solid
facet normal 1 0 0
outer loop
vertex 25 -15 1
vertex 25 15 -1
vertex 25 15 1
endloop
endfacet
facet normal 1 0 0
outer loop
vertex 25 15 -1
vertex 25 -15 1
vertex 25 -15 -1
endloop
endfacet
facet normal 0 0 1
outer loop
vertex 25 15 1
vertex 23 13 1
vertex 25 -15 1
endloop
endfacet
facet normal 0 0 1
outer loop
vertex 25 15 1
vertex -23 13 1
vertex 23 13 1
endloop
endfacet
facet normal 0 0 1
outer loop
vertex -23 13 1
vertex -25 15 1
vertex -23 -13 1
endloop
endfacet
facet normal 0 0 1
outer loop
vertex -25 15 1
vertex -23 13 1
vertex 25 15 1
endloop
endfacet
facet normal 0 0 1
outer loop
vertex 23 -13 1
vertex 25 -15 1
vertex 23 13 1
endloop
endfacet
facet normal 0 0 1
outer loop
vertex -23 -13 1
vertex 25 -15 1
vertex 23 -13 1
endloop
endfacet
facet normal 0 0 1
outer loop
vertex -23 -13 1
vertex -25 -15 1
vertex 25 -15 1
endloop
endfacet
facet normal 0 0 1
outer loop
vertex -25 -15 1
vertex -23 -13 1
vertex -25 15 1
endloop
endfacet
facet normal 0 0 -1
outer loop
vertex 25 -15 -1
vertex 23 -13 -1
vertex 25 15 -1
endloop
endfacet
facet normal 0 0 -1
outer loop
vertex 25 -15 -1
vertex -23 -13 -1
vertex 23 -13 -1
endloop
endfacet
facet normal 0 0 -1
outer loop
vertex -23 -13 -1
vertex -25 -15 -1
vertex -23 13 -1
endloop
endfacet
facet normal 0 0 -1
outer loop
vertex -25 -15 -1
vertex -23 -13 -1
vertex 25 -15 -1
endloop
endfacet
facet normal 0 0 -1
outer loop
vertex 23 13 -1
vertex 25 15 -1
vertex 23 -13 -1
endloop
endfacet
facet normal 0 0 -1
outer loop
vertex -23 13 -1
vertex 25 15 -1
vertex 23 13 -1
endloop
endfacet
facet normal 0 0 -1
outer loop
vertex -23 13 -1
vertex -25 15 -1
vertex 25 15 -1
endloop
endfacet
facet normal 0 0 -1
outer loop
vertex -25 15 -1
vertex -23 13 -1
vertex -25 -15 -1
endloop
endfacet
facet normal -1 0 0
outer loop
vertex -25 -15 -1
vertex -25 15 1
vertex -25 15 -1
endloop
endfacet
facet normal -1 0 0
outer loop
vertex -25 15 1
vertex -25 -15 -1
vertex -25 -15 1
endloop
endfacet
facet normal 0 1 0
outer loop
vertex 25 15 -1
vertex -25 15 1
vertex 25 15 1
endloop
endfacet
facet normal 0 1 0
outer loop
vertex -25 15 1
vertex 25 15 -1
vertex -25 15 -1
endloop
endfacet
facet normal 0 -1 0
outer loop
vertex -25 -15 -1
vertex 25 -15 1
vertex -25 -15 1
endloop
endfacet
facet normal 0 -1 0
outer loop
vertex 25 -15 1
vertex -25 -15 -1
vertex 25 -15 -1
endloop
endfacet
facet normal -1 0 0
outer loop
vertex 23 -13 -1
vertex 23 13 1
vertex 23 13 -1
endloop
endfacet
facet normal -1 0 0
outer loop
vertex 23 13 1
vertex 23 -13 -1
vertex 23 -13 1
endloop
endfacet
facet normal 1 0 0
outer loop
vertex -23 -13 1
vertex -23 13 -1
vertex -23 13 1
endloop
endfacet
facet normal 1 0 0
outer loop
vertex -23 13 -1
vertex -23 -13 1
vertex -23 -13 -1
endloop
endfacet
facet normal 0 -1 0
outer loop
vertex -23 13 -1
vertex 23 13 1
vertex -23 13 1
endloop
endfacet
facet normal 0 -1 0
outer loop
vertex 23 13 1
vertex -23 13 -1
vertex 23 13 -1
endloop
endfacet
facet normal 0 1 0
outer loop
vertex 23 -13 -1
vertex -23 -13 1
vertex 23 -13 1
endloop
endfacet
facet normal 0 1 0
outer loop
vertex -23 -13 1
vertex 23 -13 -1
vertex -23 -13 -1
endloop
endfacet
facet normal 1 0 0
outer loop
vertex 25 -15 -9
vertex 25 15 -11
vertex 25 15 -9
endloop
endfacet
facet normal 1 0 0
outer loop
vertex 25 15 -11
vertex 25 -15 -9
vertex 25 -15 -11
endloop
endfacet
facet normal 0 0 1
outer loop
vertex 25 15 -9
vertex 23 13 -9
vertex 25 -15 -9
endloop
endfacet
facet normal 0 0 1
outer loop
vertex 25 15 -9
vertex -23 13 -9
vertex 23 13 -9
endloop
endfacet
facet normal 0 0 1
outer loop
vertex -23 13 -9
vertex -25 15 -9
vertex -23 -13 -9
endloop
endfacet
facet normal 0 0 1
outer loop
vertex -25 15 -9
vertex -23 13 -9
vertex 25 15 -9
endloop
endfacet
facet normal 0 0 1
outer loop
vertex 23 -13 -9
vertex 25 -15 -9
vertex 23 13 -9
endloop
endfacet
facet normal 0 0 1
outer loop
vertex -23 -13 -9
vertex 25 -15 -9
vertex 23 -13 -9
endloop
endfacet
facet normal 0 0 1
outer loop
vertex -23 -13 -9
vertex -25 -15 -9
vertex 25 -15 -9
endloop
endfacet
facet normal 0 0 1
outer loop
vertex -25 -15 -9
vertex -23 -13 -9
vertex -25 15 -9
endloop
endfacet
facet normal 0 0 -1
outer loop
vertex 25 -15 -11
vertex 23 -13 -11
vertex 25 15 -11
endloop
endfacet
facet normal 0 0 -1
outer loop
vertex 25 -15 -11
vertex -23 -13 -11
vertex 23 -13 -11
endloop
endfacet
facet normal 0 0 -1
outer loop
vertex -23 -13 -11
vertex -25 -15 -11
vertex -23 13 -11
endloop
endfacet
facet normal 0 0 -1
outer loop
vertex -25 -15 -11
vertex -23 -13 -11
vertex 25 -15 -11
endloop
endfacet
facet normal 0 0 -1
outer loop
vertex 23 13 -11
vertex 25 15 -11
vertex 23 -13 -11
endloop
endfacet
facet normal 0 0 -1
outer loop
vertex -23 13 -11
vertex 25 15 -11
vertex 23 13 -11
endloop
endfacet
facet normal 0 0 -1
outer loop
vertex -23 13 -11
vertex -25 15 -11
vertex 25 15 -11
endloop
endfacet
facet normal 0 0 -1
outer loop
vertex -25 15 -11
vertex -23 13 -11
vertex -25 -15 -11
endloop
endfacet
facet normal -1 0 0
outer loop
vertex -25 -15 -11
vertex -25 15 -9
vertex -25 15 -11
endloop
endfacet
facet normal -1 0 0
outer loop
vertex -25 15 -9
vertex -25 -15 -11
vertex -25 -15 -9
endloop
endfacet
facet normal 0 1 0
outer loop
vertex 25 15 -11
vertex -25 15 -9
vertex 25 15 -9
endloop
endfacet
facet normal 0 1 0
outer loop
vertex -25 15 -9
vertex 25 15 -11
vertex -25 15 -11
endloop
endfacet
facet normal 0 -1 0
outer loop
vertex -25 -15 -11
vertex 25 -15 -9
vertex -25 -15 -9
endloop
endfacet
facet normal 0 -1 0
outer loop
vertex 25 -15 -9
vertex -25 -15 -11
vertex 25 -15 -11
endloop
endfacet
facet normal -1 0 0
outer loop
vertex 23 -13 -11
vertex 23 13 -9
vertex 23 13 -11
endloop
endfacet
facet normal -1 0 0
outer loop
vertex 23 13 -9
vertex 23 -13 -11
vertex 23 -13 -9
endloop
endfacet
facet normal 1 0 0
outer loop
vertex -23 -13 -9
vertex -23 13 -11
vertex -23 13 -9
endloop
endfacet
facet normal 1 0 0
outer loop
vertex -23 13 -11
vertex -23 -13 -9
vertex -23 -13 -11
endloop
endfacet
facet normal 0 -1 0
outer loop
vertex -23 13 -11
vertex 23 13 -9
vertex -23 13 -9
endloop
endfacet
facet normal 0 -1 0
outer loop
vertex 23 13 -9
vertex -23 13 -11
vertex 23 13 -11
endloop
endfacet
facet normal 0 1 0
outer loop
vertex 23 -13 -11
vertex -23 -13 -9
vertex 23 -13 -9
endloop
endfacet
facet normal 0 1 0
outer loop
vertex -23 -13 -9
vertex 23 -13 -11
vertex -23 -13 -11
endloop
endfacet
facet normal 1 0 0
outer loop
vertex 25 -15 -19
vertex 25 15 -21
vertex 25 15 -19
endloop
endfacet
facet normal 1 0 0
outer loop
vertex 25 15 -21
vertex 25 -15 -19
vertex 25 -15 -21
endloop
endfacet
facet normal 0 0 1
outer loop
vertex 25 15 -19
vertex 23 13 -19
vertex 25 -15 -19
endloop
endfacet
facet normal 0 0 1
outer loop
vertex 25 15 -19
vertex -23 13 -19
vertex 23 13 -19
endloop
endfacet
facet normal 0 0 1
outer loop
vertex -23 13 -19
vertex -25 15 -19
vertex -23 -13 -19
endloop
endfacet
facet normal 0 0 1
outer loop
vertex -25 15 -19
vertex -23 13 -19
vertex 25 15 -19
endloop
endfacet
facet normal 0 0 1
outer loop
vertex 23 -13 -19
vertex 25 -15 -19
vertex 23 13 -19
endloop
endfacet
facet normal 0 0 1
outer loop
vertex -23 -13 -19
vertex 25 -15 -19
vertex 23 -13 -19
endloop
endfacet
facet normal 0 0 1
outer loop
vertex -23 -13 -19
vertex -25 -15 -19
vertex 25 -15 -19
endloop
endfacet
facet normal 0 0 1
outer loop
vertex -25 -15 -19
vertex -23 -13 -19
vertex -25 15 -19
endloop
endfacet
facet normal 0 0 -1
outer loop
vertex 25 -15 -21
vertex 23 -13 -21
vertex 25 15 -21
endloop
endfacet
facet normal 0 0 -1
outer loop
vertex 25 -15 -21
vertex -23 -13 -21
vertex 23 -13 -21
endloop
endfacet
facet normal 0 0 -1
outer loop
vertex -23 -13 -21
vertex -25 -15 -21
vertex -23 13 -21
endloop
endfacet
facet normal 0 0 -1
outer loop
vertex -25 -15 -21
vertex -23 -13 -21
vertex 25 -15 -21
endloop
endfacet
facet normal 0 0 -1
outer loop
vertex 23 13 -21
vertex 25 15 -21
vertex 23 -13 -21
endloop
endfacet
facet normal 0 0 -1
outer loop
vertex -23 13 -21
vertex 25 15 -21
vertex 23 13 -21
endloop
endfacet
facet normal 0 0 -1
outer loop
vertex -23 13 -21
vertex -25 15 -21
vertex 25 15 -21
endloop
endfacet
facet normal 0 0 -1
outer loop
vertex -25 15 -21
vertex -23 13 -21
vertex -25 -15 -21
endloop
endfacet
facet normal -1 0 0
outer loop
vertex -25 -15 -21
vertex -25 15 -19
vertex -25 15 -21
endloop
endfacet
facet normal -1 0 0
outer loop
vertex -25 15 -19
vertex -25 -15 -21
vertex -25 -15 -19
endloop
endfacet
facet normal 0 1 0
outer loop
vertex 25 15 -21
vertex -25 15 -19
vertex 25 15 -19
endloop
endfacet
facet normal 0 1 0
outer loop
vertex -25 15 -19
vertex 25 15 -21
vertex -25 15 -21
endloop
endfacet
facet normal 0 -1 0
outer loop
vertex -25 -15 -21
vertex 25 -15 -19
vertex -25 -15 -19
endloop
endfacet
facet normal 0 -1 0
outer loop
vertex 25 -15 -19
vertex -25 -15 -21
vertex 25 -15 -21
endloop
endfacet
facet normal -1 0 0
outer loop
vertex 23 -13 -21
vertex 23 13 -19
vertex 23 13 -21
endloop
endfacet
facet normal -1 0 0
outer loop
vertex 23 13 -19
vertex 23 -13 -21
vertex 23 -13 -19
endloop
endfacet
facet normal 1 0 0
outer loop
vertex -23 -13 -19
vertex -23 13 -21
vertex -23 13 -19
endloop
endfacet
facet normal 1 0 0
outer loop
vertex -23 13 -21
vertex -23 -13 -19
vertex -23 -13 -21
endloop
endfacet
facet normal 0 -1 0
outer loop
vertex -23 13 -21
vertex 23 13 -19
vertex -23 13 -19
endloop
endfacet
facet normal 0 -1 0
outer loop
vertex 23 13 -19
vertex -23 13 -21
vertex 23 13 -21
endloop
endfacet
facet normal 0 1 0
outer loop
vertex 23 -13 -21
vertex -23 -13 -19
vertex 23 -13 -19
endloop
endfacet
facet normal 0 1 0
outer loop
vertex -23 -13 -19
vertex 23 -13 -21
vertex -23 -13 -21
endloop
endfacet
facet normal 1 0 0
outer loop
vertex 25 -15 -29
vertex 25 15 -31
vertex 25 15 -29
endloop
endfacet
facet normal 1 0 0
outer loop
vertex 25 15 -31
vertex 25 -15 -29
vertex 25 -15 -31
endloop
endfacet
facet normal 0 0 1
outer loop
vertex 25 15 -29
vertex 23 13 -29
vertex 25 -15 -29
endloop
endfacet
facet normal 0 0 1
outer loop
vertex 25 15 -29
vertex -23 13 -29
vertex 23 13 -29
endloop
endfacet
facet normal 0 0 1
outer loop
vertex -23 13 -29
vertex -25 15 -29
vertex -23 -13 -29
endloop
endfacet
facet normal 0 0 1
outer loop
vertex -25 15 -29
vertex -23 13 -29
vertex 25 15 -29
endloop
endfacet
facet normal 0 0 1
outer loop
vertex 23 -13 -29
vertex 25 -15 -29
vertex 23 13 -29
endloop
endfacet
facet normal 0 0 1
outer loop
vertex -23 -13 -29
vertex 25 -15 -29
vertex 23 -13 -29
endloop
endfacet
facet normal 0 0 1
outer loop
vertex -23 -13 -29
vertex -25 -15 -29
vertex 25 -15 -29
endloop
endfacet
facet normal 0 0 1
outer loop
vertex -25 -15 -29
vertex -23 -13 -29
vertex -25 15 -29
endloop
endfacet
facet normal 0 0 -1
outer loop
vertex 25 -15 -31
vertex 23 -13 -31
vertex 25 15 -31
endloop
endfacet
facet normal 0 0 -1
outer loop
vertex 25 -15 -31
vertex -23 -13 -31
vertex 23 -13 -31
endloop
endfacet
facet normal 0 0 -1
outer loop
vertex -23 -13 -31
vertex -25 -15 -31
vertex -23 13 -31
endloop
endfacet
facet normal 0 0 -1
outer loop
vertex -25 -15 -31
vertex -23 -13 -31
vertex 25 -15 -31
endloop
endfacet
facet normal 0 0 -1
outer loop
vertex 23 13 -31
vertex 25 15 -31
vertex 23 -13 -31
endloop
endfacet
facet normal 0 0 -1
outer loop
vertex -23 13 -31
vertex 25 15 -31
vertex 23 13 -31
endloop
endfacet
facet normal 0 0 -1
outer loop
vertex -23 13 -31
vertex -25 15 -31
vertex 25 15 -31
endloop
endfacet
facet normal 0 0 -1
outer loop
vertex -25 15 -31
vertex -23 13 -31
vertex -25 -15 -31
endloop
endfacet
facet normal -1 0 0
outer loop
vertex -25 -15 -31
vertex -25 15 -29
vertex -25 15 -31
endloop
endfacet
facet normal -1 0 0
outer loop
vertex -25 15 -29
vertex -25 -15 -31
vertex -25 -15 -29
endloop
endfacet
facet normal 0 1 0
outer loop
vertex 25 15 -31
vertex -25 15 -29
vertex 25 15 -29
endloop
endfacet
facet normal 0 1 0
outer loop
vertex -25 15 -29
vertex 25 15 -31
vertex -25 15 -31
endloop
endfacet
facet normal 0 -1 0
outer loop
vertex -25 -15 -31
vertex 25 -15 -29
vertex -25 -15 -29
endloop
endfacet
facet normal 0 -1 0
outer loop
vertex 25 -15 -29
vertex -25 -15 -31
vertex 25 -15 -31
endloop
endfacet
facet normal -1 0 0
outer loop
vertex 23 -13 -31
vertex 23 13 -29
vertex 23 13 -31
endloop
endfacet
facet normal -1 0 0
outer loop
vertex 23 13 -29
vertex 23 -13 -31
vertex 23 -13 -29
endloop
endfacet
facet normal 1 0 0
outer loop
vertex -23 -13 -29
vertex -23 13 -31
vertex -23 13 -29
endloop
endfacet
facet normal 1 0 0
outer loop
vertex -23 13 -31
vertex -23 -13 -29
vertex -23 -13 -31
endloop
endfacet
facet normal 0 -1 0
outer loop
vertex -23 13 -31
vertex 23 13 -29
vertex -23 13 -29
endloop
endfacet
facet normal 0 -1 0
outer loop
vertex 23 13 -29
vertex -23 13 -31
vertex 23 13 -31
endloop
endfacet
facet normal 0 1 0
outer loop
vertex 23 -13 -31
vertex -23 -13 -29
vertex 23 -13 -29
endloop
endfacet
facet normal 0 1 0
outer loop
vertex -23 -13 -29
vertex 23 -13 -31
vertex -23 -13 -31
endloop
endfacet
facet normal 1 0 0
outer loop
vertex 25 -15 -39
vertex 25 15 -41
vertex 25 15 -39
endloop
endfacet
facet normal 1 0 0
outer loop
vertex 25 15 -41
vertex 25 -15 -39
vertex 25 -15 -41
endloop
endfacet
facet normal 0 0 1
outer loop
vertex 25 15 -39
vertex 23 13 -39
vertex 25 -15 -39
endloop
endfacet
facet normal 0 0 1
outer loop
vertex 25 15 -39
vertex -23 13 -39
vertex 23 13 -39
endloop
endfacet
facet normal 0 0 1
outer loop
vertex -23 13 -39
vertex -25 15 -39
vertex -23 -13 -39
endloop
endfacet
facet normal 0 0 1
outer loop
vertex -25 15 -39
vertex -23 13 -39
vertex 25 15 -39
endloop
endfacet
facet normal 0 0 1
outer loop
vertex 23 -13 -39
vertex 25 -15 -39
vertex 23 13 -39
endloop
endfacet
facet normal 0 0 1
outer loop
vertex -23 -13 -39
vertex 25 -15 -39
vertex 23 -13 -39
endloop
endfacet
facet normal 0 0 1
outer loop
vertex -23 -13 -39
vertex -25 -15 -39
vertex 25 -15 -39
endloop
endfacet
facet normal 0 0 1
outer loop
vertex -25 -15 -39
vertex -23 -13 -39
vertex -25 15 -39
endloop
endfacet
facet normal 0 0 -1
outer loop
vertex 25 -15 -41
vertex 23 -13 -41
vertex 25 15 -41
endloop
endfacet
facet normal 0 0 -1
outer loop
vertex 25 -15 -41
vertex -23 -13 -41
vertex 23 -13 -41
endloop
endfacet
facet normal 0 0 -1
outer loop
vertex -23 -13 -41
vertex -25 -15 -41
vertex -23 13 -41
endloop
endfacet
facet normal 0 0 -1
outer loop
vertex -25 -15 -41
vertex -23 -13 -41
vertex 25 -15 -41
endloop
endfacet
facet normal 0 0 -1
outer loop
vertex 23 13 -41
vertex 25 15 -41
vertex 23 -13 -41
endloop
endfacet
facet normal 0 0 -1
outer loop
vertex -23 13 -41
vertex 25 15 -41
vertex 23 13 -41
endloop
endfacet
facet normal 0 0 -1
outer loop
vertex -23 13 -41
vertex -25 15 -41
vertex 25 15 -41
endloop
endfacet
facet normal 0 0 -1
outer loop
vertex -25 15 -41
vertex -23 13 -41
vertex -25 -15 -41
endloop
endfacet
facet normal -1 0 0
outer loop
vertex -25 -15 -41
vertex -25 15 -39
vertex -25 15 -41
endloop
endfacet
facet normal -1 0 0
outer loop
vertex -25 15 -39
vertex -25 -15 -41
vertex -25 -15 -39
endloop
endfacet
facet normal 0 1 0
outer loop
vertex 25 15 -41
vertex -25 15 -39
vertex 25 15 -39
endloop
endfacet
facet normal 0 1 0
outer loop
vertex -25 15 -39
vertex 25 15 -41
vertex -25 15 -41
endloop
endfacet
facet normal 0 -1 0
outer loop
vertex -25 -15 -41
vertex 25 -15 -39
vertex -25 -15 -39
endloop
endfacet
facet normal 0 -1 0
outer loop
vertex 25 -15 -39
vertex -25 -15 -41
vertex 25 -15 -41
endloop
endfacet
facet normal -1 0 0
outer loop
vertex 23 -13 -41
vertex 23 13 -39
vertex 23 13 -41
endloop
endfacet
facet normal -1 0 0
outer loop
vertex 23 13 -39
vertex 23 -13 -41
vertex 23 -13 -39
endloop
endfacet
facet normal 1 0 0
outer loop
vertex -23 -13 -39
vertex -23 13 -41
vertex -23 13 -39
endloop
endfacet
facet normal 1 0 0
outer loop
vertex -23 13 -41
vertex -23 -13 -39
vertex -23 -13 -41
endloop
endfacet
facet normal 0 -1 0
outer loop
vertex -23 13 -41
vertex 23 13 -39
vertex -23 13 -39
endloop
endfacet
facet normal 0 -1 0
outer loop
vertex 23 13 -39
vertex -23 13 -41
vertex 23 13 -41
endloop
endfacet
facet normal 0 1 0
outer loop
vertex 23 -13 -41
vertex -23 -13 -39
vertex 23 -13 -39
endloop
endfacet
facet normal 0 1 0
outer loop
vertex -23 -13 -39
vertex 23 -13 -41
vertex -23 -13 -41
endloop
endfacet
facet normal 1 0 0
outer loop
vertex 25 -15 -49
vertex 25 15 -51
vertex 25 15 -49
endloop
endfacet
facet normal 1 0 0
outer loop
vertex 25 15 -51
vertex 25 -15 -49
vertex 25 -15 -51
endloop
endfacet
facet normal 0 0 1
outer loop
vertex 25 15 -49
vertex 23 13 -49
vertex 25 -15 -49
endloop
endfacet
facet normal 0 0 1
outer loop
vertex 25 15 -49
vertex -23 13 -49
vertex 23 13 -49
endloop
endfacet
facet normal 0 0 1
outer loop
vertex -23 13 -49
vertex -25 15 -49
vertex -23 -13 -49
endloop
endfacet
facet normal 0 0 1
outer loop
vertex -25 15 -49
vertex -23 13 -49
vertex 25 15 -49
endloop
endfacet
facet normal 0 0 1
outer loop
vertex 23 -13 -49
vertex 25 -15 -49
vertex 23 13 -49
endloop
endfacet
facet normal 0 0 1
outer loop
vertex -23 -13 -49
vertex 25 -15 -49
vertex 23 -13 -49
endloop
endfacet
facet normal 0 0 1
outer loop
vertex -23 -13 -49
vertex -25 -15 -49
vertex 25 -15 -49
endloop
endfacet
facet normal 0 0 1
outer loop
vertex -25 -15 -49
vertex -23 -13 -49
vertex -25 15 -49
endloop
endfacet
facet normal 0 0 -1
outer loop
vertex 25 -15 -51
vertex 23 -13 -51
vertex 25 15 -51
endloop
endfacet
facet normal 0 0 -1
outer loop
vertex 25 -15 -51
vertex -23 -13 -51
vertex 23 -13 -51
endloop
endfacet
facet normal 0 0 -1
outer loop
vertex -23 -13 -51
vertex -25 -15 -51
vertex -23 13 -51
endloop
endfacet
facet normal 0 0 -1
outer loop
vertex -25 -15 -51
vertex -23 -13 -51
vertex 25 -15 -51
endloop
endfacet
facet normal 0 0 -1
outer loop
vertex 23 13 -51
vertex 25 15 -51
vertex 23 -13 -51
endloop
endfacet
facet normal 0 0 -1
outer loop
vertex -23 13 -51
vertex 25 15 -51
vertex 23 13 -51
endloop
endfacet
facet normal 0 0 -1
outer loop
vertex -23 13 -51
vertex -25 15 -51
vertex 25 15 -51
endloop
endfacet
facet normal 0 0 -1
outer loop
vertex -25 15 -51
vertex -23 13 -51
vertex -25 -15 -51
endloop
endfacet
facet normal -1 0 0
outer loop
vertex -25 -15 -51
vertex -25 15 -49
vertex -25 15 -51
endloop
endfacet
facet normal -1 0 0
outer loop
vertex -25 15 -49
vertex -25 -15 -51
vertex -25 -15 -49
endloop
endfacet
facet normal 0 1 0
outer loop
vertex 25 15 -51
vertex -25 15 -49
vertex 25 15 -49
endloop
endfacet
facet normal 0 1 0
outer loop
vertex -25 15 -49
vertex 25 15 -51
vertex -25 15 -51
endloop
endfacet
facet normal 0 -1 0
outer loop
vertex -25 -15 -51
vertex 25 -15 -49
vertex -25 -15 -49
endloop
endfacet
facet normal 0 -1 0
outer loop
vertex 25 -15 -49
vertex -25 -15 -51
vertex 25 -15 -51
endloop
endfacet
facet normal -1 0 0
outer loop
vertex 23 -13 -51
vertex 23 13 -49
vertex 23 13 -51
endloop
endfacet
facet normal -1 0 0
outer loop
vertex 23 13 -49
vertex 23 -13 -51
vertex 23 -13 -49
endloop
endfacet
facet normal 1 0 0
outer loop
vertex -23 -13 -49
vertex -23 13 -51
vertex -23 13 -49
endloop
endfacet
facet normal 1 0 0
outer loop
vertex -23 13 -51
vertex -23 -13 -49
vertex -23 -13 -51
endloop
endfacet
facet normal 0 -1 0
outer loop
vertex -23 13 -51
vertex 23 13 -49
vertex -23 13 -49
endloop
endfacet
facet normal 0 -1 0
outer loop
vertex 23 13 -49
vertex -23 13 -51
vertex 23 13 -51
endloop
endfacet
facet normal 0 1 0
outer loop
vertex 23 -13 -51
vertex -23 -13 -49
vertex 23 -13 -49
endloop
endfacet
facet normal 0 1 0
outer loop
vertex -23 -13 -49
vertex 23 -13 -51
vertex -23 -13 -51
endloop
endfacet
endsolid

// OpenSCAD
// Parameters for the rectangular frame
frame_outer_width = 50;  // Outer width of the frame
frame_outer_height = 30; // Outer height of the frame
frame_thickness = 2;     // Thickness of the frame
frame_inner_width = frame_outer_width - 2 * frame_thickness; // Inner width of the hollow center
frame_inner_height = frame_outer_height - 2 * frame_thickness; // Inner height of the hollow center
frame_spacing = 10;      // Increased spacing between each frame layer to match the original model
num_frames = 6;          // Total number of frames

// Function to create a single rectangular frame
module rectangular_frame() {
    difference() {
        // Outer rectangle
        cube([frame_outer_width, frame_outer_height, frame_thickness], center = true);
        // Inner hollow rectangle
        translate([0, 0, -0.1]) // Slightly offset to avoid rendering issues
        cube([frame_inner_width, frame_inner_height, frame_thickness + 0.2], center = true);
    }
}

// Assemble the layers of rectangular frames
module flexible_coupling() {
    for (i = [0 : num_frames - 1]) {
        translate([0, 0, -i * frame_spacing]) {
            // Ensure frames are perfectly aligned and parallel
            rotate([0, 0, 0]) // No rotation to maintain alignment
            rectangular_frame();
        }
    }
}

// Render the flexible coupling
flexible_coupling();
